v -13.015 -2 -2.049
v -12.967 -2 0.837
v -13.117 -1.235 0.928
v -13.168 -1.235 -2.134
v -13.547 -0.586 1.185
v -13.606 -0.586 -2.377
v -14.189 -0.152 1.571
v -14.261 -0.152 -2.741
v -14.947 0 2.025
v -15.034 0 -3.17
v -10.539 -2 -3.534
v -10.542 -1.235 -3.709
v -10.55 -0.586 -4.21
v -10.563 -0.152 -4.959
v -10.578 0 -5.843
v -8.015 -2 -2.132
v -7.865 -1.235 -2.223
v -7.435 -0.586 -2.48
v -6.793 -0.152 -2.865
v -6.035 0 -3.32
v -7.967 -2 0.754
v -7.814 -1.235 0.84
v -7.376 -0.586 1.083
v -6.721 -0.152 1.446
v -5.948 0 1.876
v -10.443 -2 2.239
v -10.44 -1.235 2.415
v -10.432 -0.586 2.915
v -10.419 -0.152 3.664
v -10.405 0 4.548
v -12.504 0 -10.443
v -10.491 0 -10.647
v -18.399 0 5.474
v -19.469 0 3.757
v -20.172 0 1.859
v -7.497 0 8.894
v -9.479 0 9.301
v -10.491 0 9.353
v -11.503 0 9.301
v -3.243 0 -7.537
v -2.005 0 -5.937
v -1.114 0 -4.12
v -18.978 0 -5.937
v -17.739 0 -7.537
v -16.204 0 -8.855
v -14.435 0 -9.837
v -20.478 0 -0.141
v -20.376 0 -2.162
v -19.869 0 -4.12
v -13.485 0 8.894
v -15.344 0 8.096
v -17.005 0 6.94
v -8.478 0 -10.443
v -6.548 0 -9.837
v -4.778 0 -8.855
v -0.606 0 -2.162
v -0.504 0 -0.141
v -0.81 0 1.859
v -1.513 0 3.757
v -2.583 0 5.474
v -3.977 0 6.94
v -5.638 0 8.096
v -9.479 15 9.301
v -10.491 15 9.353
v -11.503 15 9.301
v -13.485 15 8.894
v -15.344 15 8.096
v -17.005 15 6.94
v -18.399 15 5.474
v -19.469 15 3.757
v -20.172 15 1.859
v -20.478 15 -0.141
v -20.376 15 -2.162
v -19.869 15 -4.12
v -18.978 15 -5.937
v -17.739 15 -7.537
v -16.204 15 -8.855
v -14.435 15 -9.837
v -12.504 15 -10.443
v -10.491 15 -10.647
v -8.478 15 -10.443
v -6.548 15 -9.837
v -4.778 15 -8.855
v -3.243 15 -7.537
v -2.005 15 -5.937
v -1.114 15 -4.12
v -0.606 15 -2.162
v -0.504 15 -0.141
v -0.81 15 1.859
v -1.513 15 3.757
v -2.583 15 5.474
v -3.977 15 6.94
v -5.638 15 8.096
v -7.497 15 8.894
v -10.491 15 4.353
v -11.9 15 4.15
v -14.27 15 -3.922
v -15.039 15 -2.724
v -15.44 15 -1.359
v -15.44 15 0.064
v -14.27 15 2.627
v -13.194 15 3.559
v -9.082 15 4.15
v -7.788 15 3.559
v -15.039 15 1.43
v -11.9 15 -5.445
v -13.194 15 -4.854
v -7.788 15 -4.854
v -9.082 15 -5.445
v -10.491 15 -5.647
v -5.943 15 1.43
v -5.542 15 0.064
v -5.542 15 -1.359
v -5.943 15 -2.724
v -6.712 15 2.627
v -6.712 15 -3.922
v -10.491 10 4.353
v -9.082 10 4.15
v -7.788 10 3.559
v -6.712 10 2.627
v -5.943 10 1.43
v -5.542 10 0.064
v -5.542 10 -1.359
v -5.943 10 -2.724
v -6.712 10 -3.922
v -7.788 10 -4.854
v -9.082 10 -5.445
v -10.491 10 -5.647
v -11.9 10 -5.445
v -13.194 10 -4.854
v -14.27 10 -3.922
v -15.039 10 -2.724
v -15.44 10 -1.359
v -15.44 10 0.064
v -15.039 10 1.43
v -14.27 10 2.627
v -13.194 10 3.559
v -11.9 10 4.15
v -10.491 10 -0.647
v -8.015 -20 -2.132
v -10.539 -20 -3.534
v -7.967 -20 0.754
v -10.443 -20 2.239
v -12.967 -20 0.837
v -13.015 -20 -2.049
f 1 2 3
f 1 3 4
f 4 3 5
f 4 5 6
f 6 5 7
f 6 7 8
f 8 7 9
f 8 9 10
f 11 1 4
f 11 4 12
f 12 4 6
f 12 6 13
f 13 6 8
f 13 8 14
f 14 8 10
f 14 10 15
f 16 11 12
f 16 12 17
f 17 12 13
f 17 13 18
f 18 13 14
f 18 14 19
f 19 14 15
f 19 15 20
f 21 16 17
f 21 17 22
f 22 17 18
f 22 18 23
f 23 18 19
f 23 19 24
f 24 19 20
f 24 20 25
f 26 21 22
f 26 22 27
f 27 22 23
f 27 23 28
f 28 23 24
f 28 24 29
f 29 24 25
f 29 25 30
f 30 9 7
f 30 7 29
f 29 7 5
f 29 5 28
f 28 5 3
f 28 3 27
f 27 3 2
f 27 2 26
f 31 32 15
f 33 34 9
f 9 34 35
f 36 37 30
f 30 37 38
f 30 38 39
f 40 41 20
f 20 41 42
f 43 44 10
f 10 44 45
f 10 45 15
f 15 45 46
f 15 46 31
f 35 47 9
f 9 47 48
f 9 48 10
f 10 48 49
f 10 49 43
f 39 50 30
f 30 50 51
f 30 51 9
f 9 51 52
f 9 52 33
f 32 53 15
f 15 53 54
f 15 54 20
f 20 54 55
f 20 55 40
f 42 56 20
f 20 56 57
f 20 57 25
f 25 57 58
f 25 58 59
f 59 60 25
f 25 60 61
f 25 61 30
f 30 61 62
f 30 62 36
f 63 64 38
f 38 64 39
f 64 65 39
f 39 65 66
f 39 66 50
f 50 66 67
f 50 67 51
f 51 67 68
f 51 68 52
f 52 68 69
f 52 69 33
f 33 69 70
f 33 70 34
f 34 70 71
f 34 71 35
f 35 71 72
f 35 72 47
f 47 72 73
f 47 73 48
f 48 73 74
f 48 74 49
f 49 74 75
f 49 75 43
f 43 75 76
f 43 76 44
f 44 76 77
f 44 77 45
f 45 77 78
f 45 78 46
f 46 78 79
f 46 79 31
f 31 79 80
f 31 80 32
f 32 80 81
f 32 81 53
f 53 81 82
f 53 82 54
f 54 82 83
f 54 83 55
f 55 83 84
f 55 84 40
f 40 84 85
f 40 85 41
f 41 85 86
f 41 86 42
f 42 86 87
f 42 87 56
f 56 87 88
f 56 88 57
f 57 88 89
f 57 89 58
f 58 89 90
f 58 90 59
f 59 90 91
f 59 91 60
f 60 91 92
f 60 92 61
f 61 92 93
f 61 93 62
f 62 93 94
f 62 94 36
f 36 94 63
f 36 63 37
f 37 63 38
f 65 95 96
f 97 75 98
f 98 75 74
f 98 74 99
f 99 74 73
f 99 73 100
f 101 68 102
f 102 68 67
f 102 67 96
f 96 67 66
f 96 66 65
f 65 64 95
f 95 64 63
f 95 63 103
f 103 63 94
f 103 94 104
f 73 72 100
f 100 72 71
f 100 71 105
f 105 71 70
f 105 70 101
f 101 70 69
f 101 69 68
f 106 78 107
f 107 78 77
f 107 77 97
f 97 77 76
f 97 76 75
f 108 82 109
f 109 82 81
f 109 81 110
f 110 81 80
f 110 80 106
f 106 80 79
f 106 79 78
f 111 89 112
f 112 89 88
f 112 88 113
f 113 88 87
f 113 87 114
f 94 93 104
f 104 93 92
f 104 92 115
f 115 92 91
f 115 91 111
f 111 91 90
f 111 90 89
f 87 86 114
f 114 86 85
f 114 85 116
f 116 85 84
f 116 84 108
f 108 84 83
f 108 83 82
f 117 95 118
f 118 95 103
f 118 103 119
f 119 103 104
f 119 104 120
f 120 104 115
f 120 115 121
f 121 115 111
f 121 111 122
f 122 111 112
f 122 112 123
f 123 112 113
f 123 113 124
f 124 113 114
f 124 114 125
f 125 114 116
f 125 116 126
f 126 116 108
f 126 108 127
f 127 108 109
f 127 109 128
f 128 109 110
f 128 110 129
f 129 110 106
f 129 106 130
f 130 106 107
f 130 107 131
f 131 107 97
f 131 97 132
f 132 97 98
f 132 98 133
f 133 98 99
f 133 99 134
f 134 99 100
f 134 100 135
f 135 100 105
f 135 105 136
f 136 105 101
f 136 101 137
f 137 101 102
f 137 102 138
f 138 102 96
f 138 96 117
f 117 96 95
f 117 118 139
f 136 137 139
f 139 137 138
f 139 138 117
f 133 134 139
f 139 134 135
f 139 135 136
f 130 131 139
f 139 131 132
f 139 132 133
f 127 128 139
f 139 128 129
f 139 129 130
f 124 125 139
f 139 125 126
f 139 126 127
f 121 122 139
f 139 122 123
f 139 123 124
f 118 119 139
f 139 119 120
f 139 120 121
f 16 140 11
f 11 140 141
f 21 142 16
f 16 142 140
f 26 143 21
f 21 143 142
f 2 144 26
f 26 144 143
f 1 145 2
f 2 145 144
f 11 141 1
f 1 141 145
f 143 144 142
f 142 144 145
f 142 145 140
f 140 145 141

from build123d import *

# Parameters (mm, degrees)
SKETCH1_R           = 10
BOSS_EXTRUDE1_DEPTH = 15
SKETCH2_R           = 5
CUT_EXTRUDE1_DEPTH  = 5
BOSS_EXTRUDE2_DEPTH = 20
FILLET2_R           = 2


with BuildPart() as part:
    # Sketch1 → Boss-Extrude1 (new body)
    with BuildSketch(Plane(origin=(0, 0, 0), x_dir=(1, 0, 0), z_dir=(0, 1, 0))):
        with Locations(Location((-10.491071429, 0.647321429, 0), (0, 0, 270))):
            Circle(SKETCH1_R)
    extrude(amount=BOSS_EXTRUDE1_DEPTH)

    # Sketch2 → Cut-Extrude1 (cut)
    with BuildSketch(Plane(origin=(0, 15, 0), x_dir=(1, 0, 0), z_dir=(0, 1, 0))):
        with Locations(Location((-10.491071429, 0.647321429, 0), (0, 0, 270))):
            Circle(SKETCH2_R)
    extrude(amount=-CUT_EXTRUDE1_DEPTH, mode=Mode.SUBTRACT)

    # Sketch3 → Boss-Extrude2 (add)
    with BuildSketch(Plane(origin=(0, 0, 0), x_dir=(-1, 0, 0), z_dir=(0, -1, 0))):
        Polygon((8.015436801, 2.132099703), (7.96739841, -0.754251912), (10.443033038, -2.239030187), (12.966706056, -0.837456846), (13.014744447, 2.04889477), (10.539109819, 3.533673044), align=None)
    extrude(amount=BOSS_EXTRUDE2_DEPTH)

    # Fillet2
    fillet2_edges = [part.edges().sort_by_distance(p)[0] for p in [
        (-9.27727331, 0, -2.832886373),
        (-7.991417606, 0, -0.688923895),
        (-9.205215724, 0, 1.496641049),
        (-11.704869547, 0, 1.538243516),
        (-12.990725252, 0, -0.605718962),
        (-11.776927133, 0, -2.791283907),
    ]]
    fillet(fillet2_edges, radius=FILLET2_R)


solid = part.part
